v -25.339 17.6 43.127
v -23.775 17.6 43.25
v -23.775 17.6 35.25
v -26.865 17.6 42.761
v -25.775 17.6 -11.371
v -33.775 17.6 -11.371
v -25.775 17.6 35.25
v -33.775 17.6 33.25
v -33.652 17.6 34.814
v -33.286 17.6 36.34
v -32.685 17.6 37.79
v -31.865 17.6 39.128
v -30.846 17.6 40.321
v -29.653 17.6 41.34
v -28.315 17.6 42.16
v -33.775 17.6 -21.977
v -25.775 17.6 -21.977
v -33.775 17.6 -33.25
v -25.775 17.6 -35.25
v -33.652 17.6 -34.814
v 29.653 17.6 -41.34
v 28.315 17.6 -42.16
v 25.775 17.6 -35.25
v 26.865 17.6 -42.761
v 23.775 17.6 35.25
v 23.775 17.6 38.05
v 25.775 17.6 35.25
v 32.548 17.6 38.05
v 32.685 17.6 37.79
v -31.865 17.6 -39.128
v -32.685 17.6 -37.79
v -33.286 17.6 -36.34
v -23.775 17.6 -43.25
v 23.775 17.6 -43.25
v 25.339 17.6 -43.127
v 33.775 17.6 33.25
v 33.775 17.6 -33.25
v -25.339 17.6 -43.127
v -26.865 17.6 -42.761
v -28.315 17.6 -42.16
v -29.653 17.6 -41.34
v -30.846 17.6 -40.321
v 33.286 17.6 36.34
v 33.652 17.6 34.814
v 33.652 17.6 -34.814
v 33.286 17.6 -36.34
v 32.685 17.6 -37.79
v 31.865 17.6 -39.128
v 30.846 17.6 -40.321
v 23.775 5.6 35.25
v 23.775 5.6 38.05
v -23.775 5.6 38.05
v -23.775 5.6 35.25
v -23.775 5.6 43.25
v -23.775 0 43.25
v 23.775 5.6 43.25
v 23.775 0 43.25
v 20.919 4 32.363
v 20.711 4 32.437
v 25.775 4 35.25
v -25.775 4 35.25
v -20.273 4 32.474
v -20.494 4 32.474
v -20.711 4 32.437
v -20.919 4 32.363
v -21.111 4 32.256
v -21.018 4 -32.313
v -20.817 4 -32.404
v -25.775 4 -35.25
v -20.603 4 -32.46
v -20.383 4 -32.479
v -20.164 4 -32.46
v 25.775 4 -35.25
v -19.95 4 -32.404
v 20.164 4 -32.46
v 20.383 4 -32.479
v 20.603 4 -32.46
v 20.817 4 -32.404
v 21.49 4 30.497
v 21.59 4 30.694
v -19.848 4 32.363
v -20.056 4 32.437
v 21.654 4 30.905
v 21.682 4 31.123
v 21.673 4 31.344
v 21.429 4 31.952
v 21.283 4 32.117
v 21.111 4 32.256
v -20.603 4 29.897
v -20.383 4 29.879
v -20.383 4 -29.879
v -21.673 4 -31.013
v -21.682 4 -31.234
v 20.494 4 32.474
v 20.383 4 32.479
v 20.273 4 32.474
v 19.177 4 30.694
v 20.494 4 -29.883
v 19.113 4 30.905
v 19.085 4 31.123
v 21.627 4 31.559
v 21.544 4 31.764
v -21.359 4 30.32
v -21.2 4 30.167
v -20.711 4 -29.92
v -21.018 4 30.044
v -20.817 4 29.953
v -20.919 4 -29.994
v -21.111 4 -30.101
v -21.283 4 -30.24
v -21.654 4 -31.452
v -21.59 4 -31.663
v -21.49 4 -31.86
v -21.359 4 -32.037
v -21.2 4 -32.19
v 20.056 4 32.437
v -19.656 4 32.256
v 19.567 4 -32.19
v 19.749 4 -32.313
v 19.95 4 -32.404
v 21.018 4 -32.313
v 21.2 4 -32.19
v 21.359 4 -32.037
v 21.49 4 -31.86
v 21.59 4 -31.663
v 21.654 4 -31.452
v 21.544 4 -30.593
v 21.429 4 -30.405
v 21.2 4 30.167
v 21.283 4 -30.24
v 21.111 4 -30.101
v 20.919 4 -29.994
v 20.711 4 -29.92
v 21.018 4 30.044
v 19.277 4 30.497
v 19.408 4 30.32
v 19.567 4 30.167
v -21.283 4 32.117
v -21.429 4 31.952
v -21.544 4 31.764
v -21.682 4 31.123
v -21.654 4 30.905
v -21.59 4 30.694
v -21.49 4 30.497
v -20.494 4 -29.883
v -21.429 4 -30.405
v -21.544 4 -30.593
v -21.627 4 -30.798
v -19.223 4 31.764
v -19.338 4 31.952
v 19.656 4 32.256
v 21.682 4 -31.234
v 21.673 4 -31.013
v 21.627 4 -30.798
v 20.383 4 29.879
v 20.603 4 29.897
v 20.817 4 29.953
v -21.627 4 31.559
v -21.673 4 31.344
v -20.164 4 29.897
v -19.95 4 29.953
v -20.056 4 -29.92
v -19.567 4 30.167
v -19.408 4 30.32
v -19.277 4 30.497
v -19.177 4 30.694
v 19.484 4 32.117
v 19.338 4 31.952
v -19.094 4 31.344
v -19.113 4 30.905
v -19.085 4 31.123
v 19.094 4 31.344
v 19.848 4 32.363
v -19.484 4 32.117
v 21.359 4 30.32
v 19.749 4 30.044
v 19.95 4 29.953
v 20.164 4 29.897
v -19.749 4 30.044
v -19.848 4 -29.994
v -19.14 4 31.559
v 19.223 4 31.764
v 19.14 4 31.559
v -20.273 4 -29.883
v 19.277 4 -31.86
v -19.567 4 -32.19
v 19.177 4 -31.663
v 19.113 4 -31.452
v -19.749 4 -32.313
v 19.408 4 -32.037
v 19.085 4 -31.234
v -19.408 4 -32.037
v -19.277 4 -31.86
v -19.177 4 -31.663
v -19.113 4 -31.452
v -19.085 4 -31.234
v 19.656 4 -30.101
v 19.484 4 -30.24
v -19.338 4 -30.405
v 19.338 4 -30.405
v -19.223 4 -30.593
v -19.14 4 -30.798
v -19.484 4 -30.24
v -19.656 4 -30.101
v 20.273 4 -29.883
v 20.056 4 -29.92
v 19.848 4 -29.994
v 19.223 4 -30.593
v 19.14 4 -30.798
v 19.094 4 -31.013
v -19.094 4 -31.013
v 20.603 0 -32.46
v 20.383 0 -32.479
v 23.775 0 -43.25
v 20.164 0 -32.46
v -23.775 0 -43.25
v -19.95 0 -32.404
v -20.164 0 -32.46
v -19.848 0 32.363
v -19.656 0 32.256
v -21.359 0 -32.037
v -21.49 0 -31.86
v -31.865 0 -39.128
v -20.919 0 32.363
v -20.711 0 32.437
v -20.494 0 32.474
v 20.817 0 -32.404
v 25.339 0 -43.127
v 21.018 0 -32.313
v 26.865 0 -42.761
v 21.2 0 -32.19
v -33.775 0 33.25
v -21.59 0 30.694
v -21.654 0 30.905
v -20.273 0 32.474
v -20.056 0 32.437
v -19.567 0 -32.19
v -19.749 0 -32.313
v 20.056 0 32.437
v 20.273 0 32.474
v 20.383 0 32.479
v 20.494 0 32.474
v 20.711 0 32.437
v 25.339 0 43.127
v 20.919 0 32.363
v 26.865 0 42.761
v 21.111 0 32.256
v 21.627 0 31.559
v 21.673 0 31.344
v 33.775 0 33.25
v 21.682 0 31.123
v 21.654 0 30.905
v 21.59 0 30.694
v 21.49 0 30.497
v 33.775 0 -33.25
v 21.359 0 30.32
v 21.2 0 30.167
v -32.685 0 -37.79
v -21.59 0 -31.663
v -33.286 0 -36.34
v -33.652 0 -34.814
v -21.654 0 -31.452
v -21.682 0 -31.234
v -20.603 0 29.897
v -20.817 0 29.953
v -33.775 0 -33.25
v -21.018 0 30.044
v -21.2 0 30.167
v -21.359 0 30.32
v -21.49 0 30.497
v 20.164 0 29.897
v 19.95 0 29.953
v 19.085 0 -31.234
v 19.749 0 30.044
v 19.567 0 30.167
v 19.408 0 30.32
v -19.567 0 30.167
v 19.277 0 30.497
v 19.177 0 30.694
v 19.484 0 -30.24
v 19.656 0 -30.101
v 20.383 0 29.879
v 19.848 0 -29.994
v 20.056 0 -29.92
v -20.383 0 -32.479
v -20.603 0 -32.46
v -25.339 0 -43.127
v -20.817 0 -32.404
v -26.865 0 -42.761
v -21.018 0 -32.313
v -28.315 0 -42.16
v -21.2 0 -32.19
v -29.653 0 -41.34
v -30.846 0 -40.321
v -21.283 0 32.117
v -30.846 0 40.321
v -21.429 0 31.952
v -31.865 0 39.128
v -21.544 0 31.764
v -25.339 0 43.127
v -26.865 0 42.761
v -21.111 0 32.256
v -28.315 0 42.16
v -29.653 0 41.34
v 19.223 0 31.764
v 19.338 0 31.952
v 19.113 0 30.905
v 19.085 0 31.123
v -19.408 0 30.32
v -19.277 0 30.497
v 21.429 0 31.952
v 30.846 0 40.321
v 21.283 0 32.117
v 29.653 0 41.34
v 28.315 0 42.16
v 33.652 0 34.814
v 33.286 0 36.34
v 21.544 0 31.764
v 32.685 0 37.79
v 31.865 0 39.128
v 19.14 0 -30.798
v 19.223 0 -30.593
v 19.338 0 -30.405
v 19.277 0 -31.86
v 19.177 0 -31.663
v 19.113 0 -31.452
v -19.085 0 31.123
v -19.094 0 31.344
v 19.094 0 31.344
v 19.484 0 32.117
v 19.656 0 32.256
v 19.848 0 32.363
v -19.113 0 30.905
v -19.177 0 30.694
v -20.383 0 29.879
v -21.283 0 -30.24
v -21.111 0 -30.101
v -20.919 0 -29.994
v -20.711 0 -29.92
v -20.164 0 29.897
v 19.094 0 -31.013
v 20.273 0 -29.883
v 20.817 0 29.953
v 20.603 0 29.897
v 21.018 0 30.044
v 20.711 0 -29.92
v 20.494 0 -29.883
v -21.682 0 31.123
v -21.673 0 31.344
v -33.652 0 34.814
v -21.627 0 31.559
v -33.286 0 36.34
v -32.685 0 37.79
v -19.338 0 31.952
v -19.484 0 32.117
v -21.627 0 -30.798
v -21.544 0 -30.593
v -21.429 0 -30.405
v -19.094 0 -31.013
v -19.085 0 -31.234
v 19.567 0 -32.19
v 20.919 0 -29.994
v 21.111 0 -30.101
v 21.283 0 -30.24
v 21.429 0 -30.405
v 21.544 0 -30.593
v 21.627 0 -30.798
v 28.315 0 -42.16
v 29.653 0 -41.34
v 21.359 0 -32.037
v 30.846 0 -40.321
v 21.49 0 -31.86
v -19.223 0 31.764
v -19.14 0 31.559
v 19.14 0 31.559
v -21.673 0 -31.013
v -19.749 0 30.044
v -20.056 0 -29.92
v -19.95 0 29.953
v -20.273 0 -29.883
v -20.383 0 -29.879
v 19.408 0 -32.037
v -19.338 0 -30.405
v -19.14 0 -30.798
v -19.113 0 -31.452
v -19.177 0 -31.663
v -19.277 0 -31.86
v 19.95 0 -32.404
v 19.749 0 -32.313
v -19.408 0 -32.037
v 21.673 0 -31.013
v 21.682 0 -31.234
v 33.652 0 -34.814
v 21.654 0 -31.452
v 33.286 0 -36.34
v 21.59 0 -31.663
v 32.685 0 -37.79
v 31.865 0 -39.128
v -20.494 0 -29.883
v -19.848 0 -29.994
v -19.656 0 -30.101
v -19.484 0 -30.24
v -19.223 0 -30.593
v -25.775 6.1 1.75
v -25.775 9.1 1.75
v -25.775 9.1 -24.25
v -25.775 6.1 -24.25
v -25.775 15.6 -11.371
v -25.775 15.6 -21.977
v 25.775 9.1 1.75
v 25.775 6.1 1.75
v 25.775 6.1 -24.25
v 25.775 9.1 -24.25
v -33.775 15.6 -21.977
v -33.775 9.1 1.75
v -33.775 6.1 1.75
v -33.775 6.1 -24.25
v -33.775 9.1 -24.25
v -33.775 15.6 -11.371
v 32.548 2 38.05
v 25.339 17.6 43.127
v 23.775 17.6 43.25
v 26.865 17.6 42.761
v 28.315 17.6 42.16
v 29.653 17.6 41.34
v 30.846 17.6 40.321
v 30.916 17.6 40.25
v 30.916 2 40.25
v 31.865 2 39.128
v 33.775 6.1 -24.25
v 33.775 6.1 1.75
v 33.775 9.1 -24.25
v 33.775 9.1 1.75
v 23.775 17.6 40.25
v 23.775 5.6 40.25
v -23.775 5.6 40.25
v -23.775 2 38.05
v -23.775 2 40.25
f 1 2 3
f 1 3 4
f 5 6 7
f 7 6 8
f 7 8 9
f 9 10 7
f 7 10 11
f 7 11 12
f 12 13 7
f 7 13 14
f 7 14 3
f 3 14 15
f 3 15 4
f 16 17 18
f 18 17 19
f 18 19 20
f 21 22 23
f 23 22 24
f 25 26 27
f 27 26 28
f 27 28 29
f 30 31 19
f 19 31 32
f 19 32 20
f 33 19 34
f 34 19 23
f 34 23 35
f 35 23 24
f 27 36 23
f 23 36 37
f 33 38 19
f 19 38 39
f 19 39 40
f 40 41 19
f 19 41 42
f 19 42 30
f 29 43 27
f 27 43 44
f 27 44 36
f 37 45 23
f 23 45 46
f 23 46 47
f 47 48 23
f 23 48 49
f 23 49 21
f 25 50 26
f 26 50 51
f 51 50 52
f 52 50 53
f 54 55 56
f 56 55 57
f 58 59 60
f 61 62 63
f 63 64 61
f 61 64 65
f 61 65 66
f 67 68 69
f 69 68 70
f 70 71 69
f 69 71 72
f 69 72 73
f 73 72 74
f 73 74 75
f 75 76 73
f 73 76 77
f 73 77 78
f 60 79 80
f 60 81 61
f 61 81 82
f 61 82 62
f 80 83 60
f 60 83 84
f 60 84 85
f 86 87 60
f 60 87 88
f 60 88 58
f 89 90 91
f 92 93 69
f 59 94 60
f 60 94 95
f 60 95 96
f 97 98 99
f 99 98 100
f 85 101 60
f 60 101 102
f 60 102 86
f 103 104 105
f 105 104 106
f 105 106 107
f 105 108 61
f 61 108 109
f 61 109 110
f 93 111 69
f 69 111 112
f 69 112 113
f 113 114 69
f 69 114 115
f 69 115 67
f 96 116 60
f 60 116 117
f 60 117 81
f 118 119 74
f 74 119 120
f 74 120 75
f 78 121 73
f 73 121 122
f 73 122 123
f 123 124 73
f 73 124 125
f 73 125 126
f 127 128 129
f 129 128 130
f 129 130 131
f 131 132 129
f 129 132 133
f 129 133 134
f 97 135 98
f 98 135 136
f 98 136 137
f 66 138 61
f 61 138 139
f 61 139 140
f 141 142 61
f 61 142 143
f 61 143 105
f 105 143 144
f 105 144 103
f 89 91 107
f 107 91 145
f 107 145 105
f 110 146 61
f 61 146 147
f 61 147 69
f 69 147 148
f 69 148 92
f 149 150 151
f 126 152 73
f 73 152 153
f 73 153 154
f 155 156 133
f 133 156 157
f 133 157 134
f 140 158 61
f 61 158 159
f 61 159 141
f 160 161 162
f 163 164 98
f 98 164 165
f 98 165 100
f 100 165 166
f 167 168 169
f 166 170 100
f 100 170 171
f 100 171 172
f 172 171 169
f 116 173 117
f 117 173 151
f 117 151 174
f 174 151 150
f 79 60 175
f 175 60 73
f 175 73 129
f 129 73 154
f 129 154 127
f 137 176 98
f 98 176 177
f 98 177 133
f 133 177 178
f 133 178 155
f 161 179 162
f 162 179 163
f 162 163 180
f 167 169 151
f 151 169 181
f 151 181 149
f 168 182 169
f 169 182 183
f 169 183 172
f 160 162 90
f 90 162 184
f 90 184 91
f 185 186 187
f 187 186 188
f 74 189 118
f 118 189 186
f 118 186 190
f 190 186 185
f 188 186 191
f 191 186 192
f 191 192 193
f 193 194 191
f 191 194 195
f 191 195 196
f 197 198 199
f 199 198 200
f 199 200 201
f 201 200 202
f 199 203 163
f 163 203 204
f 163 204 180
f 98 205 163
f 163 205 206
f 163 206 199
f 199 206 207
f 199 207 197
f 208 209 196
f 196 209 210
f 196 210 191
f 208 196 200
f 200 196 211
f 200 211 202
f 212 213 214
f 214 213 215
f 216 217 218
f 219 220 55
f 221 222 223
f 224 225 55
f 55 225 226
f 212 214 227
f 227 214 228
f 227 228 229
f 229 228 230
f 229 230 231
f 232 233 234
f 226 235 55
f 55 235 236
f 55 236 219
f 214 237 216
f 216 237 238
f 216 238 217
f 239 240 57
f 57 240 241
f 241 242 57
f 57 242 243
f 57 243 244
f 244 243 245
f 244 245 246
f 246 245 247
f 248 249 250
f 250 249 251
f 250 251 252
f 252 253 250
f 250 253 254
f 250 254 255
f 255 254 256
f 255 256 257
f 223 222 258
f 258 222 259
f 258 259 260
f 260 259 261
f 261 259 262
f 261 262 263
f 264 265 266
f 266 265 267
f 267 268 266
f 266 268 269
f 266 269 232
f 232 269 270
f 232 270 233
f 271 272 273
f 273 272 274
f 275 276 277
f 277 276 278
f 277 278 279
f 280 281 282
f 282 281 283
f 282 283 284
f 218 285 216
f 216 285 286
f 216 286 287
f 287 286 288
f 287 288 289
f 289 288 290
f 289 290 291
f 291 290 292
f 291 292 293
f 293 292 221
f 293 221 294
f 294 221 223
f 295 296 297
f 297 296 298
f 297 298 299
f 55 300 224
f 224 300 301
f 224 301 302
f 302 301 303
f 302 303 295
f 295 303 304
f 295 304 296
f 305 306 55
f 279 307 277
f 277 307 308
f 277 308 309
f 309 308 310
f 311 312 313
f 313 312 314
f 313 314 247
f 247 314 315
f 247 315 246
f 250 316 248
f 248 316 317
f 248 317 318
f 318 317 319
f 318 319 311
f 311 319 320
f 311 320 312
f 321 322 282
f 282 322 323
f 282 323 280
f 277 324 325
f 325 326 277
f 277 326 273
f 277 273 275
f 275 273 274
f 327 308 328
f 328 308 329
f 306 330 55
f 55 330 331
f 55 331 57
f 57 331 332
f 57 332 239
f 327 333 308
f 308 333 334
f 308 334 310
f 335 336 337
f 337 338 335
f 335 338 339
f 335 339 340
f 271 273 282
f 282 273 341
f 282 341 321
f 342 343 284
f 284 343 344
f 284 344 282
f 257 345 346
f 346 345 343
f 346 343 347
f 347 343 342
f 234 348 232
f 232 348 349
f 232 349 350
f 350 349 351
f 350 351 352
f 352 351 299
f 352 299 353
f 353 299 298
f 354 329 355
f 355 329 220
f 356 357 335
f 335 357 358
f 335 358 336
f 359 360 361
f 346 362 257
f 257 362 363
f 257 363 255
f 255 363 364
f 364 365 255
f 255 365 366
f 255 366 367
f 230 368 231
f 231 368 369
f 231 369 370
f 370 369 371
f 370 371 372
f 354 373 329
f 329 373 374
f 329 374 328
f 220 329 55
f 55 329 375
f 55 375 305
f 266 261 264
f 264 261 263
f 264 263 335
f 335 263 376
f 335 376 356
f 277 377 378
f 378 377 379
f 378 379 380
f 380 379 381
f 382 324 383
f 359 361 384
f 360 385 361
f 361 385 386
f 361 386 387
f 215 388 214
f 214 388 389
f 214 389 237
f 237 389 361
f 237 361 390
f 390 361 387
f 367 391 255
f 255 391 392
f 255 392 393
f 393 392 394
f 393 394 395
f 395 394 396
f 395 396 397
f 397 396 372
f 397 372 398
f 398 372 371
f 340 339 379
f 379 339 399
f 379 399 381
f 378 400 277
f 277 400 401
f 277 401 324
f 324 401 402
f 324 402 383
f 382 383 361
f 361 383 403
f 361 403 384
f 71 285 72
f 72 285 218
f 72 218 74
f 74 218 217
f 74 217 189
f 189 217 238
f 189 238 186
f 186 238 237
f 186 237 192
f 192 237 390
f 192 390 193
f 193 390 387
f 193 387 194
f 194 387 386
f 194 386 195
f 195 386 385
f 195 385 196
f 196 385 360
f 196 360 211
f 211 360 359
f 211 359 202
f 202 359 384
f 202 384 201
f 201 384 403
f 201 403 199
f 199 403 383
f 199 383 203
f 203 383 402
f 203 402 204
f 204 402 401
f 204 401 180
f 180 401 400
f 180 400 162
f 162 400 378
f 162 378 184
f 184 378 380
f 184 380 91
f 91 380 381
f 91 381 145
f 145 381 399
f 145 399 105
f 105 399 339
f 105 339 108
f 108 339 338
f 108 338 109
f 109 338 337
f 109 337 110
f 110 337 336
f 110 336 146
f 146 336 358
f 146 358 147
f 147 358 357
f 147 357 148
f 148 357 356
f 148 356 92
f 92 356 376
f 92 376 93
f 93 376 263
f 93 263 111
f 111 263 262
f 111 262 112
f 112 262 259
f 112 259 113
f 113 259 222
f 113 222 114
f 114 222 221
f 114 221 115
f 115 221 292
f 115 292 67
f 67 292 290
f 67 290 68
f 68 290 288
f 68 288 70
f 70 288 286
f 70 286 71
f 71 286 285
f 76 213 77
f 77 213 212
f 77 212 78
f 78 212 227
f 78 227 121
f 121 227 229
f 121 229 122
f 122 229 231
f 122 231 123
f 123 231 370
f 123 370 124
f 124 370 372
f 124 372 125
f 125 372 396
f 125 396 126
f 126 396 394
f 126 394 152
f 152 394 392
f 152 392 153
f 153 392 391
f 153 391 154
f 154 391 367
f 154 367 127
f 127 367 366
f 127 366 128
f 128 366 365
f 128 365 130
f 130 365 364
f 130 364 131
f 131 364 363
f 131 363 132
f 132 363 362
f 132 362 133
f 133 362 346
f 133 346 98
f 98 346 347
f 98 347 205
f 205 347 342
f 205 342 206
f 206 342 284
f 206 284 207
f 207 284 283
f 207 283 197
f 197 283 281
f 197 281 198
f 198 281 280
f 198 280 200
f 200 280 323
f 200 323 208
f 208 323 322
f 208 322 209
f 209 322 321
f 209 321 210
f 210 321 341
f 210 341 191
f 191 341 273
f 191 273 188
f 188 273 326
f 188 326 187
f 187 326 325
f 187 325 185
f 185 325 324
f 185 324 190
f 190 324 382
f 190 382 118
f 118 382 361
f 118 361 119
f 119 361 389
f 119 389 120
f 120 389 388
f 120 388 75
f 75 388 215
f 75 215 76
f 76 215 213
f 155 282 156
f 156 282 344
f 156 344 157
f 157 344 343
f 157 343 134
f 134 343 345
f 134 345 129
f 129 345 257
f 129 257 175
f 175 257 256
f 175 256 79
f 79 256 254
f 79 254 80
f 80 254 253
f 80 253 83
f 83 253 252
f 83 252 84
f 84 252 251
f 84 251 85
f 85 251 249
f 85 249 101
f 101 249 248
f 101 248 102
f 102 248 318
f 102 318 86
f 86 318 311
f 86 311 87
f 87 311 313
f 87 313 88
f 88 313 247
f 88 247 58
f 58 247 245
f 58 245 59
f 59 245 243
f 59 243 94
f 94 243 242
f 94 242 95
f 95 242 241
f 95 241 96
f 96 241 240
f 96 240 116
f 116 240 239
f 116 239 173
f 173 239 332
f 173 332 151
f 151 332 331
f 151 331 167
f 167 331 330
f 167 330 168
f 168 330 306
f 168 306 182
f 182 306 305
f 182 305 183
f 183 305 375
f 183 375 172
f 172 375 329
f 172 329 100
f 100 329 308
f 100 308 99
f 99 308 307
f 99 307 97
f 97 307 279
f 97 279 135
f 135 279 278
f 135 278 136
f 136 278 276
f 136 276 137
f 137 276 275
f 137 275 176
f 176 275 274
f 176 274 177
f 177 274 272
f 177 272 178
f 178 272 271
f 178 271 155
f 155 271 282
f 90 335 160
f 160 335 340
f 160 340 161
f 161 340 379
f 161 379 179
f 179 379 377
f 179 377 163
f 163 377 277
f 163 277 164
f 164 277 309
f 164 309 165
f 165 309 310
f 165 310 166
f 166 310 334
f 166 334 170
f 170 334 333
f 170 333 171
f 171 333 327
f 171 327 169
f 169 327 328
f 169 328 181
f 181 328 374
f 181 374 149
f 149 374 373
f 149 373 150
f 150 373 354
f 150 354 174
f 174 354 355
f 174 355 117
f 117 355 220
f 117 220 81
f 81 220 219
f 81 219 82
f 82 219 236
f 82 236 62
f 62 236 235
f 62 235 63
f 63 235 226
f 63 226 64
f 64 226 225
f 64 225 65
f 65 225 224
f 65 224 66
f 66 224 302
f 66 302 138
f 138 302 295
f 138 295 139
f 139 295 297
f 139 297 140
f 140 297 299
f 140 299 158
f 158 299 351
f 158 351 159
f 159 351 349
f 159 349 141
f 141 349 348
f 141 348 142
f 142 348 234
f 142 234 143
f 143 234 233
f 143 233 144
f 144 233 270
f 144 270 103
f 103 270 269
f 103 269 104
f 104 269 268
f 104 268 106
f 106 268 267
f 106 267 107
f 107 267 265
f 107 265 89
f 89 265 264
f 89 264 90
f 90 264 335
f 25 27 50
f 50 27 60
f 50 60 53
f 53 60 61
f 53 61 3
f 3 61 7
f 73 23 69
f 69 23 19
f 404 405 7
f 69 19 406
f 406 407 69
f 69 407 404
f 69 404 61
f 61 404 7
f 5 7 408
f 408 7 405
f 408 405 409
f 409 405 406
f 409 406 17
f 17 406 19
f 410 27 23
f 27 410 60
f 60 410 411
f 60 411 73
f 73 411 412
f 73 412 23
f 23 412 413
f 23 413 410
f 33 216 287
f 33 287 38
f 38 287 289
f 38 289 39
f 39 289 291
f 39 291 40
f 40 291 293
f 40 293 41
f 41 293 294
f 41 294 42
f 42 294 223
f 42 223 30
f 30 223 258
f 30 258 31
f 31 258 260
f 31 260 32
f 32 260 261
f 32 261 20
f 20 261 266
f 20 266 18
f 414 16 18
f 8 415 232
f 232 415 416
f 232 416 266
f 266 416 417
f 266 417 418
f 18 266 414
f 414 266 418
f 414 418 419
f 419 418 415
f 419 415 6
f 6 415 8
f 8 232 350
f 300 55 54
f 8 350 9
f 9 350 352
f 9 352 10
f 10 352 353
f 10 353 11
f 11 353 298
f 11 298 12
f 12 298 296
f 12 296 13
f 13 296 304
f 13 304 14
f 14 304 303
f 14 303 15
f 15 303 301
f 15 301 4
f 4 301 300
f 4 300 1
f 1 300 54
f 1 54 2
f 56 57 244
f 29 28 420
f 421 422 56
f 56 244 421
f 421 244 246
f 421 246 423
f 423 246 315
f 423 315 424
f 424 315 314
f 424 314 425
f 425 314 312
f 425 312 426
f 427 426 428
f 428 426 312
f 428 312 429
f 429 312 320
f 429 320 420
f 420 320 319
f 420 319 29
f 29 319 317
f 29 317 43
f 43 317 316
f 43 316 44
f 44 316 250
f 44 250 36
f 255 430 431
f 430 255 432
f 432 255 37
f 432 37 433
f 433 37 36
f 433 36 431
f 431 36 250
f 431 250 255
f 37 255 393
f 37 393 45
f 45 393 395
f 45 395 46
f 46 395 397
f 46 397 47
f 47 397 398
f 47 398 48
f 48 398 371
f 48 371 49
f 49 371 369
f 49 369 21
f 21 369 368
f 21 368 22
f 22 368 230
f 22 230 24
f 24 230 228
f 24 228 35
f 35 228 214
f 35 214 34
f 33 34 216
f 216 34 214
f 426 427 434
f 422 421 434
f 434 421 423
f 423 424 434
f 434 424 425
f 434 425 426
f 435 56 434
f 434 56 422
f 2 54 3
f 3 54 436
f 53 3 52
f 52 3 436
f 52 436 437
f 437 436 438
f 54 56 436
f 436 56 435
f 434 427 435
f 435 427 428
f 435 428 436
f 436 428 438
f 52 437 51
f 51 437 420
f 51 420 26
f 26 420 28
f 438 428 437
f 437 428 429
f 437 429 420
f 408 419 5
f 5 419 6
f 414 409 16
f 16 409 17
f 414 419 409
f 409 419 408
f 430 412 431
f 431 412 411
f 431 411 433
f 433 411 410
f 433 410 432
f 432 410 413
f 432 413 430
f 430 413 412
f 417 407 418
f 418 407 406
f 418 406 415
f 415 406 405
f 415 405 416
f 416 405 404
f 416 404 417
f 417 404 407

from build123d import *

# Parameters (mm, degrees)
SKETCH_1_W          = 51.55
SKETCH_1_H          = 70.5
SKETCH_1_R          = 1.3
EXTRUDE_1_DEPTH     = 4
SKETCH_2_W          = 51.55
SKETCH_2_H          = 70.5
EXTRUDE_2_DEPTH     = 17.6
SKETCH_4_W          = 47.55
SKETCH_4_H          = 8
CUT_EXTRUDE_1_DEPTH = 12
SKETCH_6_W          = 57.55
SKETCH_6_H          = 15.6
CUT_EXTRUDE_3_DEPTH = 2.2
SKETCH_7_W          = 8
SKETCH_7_H          = 10.60647
CUT_EXTRUDE_4_DEPTH = 2
SKETCH_8_W          = 26
SKETCH_8_H          = 3
CUT_EXTRUDE_5_DEPTH = 83


with BuildPart() as part:
    # 草图1 → 凸台-拉伸1 (new body)
    with BuildSketch(Plane(origin=(0, 0, 0), x_dir=(1, 0, 0), z_dir=(0, 1, 0))):
        Rectangle(SKETCH_1_W, SKETCH_1_H)
        with Locations(Location((-20.3835, 31.1785, 0), (0, 0, 270))):
            Circle(SKETCH_1_R, mode=Mode.SUBTRACT)
        with Locations(Location((20.3835, 31.1785, 0), (0, 0, 90))):
            Circle(SKETCH_1_R, mode=Mode.SUBTRACT)
        with Locations(Location((20.3835, -31.1785, 0), (0, 0, 270))):
            Circle(SKETCH_1_R, mode=Mode.SUBTRACT)
        with Locations(Location((-20.3835, -31.1785, 0), (0, 0, 90))):
            Circle(SKETCH_1_R, mode=Mode.SUBTRACT)
    extrude(amount=EXTRUDE_1_DEPTH)

    # 草图2 → 凸台-拉伸2 (add)
    with BuildSketch(Plane.XZ):
        with BuildLine():
            Line((-23.775, 43.25), (23.775, 43.25))
            ThreePointArc((23.775, 43.25), (30.846067812, 40.321067812), (33.775, 33.25))
            Line((33.775, 33.25), (33.775, -33.25))
            ThreePointArc((33.775, -33.25), (30.846067812, -40.321067812), (23.775, -43.25))
            Line((23.775, -43.25), (-23.775, -43.25))
            ThreePointArc((-23.775, -43.25), (-30.846067812, -40.321067812), (-33.775, -33.25))
            Line((-33.775, -33.25), (-33.775, 33.25))
            ThreePointArc((-33.775, 33.25), (-30.846067812, 40.321067812), (-23.775, 43.25))
        make_face()
        Rectangle(SKETCH_2_W, SKETCH_2_H, mode=Mode.SUBTRACT)
    extrude(amount=-EXTRUDE_2_DEPTH)

    # 草图4 → 切除-拉伸1 (cut)
    with BuildSketch(Plane(origin=(0, 17.6, 0), x_dir=(1, 0, 0), z_dir=(0, 1, 0))):
        with Locations((0, -39.25)):
            Rectangle(SKETCH_4_W, SKETCH_4_H)
    extrude(amount=-CUT_EXTRUDE_1_DEPTH, mode=Mode.SUBTRACT)

    # 草图6 → 切除-拉伸3 (cut)
    with BuildSketch(Plane(origin=(0, 0, 38.05), x_dir=(-1, 0, 0), z_dir=(0, 0, -1))):
        with Locations((-5, 9.8)):
            Rectangle(SKETCH_6_W, SKETCH_6_H)
    extrude(amount=-CUT_EXTRUDE_3_DEPTH, mode=Mode.SUBTRACT)

    # 草图7 → 切除-拉伸4 (cut)
    with BuildSketch(Plane(origin=(0, 17.6, 0), x_dir=(1, 0, 0), z_dir=(0, 1, 0))):
        with Locations((-29.775, 16.673805)):
            Rectangle(SKETCH_7_W, SKETCH_7_H)
    extrude(amount=-CUT_EXTRUDE_4_DEPTH, mode=Mode.SUBTRACT)

    # 草图8 → 切除-拉伸5 (cut)
    with BuildSketch(Plane.ZY.offset(33.775)):
        with Locations((-11.25, 7.6)):
            Rectangle(SKETCH_8_W, SKETCH_8_H)
    extrude(amount=-CUT_EXTRUDE_5_DEPTH, mode=Mode.SUBTRACT)


solid = part.part
